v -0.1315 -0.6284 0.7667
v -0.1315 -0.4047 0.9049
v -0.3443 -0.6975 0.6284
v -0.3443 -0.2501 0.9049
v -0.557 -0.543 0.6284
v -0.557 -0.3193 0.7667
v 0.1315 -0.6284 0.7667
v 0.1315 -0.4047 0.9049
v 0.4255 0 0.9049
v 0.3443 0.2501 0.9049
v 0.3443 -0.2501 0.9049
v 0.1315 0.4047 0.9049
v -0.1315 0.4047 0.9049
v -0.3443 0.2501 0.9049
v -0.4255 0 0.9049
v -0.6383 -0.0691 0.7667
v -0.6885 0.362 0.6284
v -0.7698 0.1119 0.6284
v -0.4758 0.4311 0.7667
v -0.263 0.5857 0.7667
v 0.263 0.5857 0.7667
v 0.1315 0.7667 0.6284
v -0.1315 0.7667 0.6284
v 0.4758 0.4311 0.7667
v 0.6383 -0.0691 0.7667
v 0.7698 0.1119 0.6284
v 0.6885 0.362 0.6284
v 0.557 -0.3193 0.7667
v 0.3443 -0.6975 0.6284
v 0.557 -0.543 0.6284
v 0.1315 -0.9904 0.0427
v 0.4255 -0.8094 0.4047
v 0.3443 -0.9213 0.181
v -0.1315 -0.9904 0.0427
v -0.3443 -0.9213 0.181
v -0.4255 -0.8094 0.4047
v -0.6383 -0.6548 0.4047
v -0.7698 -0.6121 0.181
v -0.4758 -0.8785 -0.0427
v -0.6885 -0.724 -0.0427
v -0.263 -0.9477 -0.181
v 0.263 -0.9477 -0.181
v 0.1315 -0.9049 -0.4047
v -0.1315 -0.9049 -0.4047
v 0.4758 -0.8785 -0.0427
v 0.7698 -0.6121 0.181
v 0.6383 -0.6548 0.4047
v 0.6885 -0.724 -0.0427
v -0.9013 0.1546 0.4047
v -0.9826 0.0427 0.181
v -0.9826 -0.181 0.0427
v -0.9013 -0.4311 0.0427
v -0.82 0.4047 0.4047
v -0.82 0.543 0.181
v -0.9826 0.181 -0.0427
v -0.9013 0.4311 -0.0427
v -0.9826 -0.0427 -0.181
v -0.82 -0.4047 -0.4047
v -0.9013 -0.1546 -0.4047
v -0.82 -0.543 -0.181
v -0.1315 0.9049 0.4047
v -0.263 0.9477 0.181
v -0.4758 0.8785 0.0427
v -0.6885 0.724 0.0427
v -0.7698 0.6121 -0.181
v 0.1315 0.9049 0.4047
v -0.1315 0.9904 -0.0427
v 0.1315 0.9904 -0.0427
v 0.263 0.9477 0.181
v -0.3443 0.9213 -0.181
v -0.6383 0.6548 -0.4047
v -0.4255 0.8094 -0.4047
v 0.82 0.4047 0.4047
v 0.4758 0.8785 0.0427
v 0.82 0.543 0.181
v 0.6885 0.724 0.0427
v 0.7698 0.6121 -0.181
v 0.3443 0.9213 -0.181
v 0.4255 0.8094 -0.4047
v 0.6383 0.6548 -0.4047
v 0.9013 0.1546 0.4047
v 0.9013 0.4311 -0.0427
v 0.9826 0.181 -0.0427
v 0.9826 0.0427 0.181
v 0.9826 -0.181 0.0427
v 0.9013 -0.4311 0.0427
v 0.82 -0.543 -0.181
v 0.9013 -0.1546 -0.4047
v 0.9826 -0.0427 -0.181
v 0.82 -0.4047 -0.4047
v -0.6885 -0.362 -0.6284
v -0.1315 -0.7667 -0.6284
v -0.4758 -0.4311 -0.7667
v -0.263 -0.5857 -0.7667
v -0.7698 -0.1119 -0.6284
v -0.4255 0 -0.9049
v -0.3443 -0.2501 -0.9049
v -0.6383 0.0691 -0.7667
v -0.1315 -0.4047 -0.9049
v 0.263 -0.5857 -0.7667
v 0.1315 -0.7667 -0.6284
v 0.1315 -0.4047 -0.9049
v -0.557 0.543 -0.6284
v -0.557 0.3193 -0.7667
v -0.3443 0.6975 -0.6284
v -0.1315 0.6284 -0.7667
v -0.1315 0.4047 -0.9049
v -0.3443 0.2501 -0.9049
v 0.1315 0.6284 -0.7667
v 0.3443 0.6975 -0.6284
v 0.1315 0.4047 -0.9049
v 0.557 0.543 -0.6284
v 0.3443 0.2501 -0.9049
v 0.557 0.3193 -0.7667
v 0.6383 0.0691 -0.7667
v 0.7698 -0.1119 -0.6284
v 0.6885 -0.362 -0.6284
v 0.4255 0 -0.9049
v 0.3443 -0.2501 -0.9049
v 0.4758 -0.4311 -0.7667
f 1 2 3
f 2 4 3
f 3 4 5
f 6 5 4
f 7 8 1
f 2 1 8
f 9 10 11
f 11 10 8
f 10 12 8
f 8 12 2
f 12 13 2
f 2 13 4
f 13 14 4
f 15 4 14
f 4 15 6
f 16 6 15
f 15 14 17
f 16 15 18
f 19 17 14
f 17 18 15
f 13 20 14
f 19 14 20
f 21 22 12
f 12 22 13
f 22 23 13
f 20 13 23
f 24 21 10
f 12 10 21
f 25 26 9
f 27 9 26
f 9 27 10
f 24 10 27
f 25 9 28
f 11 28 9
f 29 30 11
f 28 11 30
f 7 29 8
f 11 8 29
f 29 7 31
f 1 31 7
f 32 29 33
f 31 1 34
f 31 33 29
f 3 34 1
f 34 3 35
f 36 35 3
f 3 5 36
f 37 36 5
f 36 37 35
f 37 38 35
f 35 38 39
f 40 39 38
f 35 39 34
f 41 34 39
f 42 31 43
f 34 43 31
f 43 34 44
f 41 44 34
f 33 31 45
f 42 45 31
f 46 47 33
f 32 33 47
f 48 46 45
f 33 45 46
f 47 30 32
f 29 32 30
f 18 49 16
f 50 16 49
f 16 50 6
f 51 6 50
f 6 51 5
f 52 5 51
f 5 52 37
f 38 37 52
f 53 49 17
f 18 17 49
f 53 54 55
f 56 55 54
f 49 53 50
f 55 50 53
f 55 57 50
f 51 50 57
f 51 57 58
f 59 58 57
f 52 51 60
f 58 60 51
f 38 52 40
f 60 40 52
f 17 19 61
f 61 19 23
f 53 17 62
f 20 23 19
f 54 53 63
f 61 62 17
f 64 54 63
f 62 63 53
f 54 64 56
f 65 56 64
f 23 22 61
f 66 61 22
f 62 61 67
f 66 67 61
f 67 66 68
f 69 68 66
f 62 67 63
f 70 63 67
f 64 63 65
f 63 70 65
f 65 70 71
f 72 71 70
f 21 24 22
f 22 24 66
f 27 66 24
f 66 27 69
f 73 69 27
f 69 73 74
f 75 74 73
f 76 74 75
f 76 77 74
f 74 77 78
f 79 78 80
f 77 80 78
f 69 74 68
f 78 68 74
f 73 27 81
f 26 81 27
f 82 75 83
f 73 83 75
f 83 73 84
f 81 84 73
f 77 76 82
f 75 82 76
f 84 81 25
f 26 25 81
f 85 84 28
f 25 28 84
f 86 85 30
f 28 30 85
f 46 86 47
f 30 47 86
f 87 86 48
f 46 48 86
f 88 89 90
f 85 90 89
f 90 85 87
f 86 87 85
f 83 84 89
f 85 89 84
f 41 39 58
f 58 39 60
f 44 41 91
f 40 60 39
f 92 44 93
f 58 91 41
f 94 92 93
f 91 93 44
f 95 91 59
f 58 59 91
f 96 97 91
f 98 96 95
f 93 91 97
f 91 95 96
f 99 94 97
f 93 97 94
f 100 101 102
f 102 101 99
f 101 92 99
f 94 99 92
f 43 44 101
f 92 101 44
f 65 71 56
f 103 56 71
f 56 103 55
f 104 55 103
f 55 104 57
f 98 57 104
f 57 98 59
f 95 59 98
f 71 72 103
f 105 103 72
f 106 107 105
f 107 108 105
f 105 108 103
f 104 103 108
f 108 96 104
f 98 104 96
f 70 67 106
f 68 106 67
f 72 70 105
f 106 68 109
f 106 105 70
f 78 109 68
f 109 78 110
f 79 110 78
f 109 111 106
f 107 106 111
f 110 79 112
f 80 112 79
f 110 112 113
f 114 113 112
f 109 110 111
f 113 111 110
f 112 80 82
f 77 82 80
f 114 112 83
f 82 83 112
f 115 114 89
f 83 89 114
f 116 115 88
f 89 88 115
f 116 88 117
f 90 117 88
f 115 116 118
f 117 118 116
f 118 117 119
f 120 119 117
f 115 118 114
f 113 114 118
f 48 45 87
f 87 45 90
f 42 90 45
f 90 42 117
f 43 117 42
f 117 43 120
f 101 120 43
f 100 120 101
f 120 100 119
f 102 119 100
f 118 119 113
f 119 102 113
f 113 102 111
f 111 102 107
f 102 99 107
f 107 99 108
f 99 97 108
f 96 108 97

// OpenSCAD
polyhedron( points = [[-0.131496058009894, -0.404703333986748, 0.904944124041698], [-0.344261187928634, -0.250120418600845, 0.904944124041698], [-0.425530235882654, -7.50858106207684e-09, 0.904944124041698], [-0.344261187861257, 0.250120403561788, 0.904944124041698], [-0.131496057973554, 0.404703318866761, 0.904944124041698], [0.131496105788631, 0.404703318843147, 0.904944124041698], [0.344261235648571, 0.250120403499964, 0.904944124041698], [0.42553028362505, -7.58500132620705e-09, 0.904944124041698], [0.344261235626112, -0.25012041866267, 0.904944124041698], [0.13149610575229, -0.404703333986748, 0.904944124041698], [-0.131496057998086, -0.628417830915805, 0.76668096139828], [-0.344261187962615, -0.697549412348455, 0.628417798797295], [-0.42553023609062, -0.809406660809319, 0.404703302191264], [-0.34426118821916, -0.921263909263207, 0.180988805529973], [-0.131496058426489, -0.99039549071136, 0.0427256427168035], [0.131496105341957, -0.990395490730345, 0.0427256425668506], [0.344261235307063, -0.921263909312916, 0.180988805137394], [0.425530283447439, -0.80940666086304, 0.404703301721455], [0.344261235536316, -0.697549412008833, 0.628417798479656], [0.13149610567618, -0.628417830861106, 0.766680961432087], [-0.557026317800241, -0.542966497042221, 0.628417798784482], [-0.557026317748208, -0.319252000221639, 0.766680961389524], [-0.638295365727725, -0.069131588845419, 0.766680961253509], [-0.769791447556113, 0.111857240903984, 0.628417798458151], [-0.901287529338599, 0.154582907918049, 0.404703301670066], [-0.982556577197955, 0.0427256596027838, 0.180988804939671], [-0.982556577129898, -0.180988837064613, 0.0427256421624187], [-0.901287529144022, -0.431109248142258, 0.0427256421527957], [-0.769791447814756, -0.61209807838258, 0.180988805642657], [-0.638295365923641, -0.654823745492648, 0.40470330219649], [-0.820018481009755, 0.542966481710617, 0.180988805160133], [-0.820018481277471, 0.404703318969162, 0.404703301716795], [-0.688522399507945, 0.361977651965656, 0.628417798479656], [-0.47575726966157, 0.431109233291317, 0.766680961271428], [-0.262992139824761, 0.585692148560483, 0.766680961253509], [-0.131496057900149, 0.766680978239972, 0.628417798458151], [-0.131496056830041, 0.904944139656651, 0.404703302223636], [-0.262992138561281, 0.947669807015912, 0.18098880549929], [-0.475757268525959, 0.878538226156881, 0.0427256426562522], [-0.688522398778812, 0.723955311138948, 0.0427256426287169], [0.475757317192318, 0.878538205375032, 0.0427256408580984], [0.262992187511499, 0.947669792368185, 0.180988803096614], [0.131496105471812, 0.904944132174008, 0.404703301853669], [0.131496105862034, 0.76668097818821, 0.628417798479656], [0.262992187703018, 0.585692148489796, 0.766680961271428], [0.475757317513177, 0.43110923318395, 0.766680961253508], [0.688522447367397, 0.361977651772904, 0.628417798458151], [0.820018525981477, 0.404703303740304, 0.404703310879981], [0.820018526321799, 0.542966460799607, 0.180988810996107], [0.688522445330262, 0.723955288220859, 0.0427256444156224], [0.638295414479777, -0.654823746575016, 0.404703301576378], [0.769791497066378, -0.612098080872227, 0.180988805213672], [0.901287579471957, -0.431109252096803, 0.0427256421460526], [0.98255662775422, -0.180988841040723, 0.042725641123142], [0.982556474402019, 0.0427256083485409, 0.180988794270921], [0.901287495794399, 0.154582884900697, 0.404703311617258], [0.769791495317104, 0.111857240679241, 0.628417798479653], [0.638295413444877, -0.0691315889964712, 0.766680961271428], [0.557026365466068, -0.319252000015257, 0.766680961253509], [0.557026365426685, -0.542966496707526, 0.628417798458151], [-0.475757270149149, -0.878538242276869, -0.0427256910865748], [-0.688522399972216, -0.723955326827411, -0.0427256910692567], [-0.820018481404414, -0.542966496538221, -0.180988855378471], [-0.82001848171864, -0.404703334218908, -0.404703351975376], [-0.688522399492997, -0.361977666507089, -0.628417847803723], [-0.475757268391344, -0.431109246203167, -0.766681009773913], [-0.262992137267791, -0.585692159807138, -0.766681008540916], [-0.131496054433964, -0.766680988311396, -0.628417844907001], [-0.131496058686052, -0.904944156968722, -0.404703350720161], [-0.262992140365604, -0.947669823722055, -0.180988853931782], [-0.901287529644985, -0.154582923464191, -0.404703351739695], [-0.982556576896605, -0.0427256743150039, -0.18098885450703], [-0.982556576964662, 0.180988822344133, -0.0427256916920879], [-0.90128752887076, 0.431109233425669, -0.0427256916275391], [-0.769791446617968, 0.612098062884076, -0.180988854243738], [-0.638295364717317, 0.654823730214611, -0.404703351048212], [-0.557026317138669, 0.542966482370974, -0.62841784833933], [-0.557026317945813, 0.319251986162982, -0.766681011682434], [-0.638295368050409, 0.0691315747769144, -0.766681010756978], [-0.769791447388803, -0.111857255509311, -0.628417847736565], [-0.131496055854715, 0.628417813608846, -0.766681009915445], [-0.344261187146599, 0.69754939728846, -0.628417848120368], [-0.425530234635219, 0.809406645134071, -0.404703350912287], [-0.344261186387647, 0.921263893184888, -0.180988854190001], [-0.131496057218301, 0.990395467294404, -0.0427256936992626], [0.131496105807753, 0.990395459887295, -0.0427256944647117], [0.344261235348426, 0.92126387293968, -0.180988856006343], [0.4255302812238, 0.809406614462282, -0.404703350261506], [0.344261237808665, 0.697549394401758, -0.628417846583931], [0.131496109205117, 0.628417812305109, -0.766681009730809], [0.769791528570091, -0.111857251782475, -0.628417821011941], [0.638295405512223, 0.0691315516571234, -0.766680969373291], [0.557026335316996, 0.319251970113478, -0.766680969824273], [0.557026347815228, 0.542966486021952, -0.628417820140994], [0.638295409746239, 0.654823696972215, -0.404703346943475], [0.769791491436809, 0.61209803418473, -0.180988849309503], [0.901287503103333, 0.431109193017294, -0.0427257114465997], [0.982556476341671, 0.180988766327609, -0.0427257150655139], [0.982556404388637, -0.0427256064432723, -0.180988738354124], [0.901287107145671, -0.154582807326964, -0.404703204745887], [0.262992187099937, -0.947669823865241, -0.180988854243783], [0.131496105070053, -0.90494415698169, -0.404703350901626], [0.131496110919134, -0.766680981051534, -0.628417838108806], [0.262992191903384, -0.585692146451223, -0.766680994055455], [0.475756824552959, -0.431108857225444, -0.76668008541107], [0.688522374315309, -0.361977375007689, -0.628417299230714], [0.820018046105325, -0.404703246760801, -0.404703221339352], [0.820018531288322, -0.542966500523944, -0.18098885437136], [0.688522448873693, -0.723955329311824, -0.0427256911658407], [0.475757317052735, -0.878538242451809, -0.0427256916873436], [-0.131496056214915, -0.40470332897552, -0.904944170930542], [-0.344261187122001, -0.250120415370292, -0.904944172242805], [-0.425530237152493, -4.93678330622069e-09, -0.904944172574985], [-0.344261186664576, 0.250120404423987, -0.904944174149214], [-0.131496056212006, 0.404703317918774, -0.904944173140452], [0.131496108187361, 0.40470331719695, -0.904944172596177], [0.344261200636748, 0.250120381152528, -0.904944139942128], [0.425530274122134, -2.93560054670573e-08, -0.904944136039341], [0.344260599604133, -0.250120013007006, -0.904943317426906], [0.131496109208718, -0.404703318666863, -0.904944157139417]], faces = [[0, 1, 21, 20, 11, 10], [0, 10, 19, 9], [0, 9, 8, 7, 6, 5, 4, 3, 2, 1], [1, 2, 22, 21], [2, 3, 33, 32, 23, 22], [3, 4, 34, 33], [4, 5, 44, 43, 35, 34], [5, 6, 45, 44], [6, 7, 57, 56, 46, 45], [7, 8, 58, 57], [8, 9, 19, 18, 59, 58], [10, 11, 12, 13, 14, 15, 16, 17, 18, 19], [11, 20, 29, 12], [12, 29, 28, 61, 60, 13], [13, 60, 69, 14], [14, 69, 68, 101, 100, 15], [15, 100, 109, 16], [16, 109, 108, 51, 50, 17], [17, 50, 59, 18], [20, 21, 22, 23, 24, 25, 26, 27, 28, 29], [23, 32, 31, 24], [24, 31, 30, 73, 72, 25], [25, 72, 71, 26], [26, 71, 70, 63, 62, 27], [27, 62, 61, 28], [30, 31, 32, 33, 34, 35, 36, 37, 38, 39], [30, 39, 74, 73], [35, 43, 42, 36], [36, 42, 41, 85, 84, 37], [37, 84, 83, 38], [38, 83, 82, 75, 74, 39], [40, 41, 42, 43, 44, 45, 46, 47, 48, 49], [40, 49, 95, 94, 87, 86], [40, 86, 85, 41], [46, 56, 55, 47], [47, 55, 54, 97, 96, 48], [48, 96, 95, 49], [50, 51, 52, 53, 54, 55, 56, 57, 58, 59], [51, 108, 107, 52], [52, 107, 106, 99, 98, 53], [53, 98, 97, 54], [60, 61, 62, 63, 64, 65, 66, 67, 68, 69], [63, 70, 79, 64], [64, 79, 78, 112, 111, 65], [65, 111, 110, 66], [66, 110, 119, 103, 102, 67], [67, 102, 101, 68], [70, 71, 72, 73, 74, 75, 76, 77, 78, 79], [75, 82, 81, 76], [76, 81, 80, 114, 113, 77], [77, 113, 112, 78], [80, 81, 82, 83, 84, 85, 86, 87, 88, 89], [80, 89, 115, 114], [87, 94, 93, 88], [88, 93, 92, 116, 115, 89], [90, 91, 92, 93, 94, 95, 96, 97, 98, 99], [90, 99, 106, 105], [90, 105, 104, 118, 117, 91], [91, 117, 116, 92], [100, 101, 102, 103, 104, 105, 106, 107, 108, 109], [103, 119, 118, 104], [110, 111, 112, 113, 114, 115, 116, 117, 118, 119]]);
